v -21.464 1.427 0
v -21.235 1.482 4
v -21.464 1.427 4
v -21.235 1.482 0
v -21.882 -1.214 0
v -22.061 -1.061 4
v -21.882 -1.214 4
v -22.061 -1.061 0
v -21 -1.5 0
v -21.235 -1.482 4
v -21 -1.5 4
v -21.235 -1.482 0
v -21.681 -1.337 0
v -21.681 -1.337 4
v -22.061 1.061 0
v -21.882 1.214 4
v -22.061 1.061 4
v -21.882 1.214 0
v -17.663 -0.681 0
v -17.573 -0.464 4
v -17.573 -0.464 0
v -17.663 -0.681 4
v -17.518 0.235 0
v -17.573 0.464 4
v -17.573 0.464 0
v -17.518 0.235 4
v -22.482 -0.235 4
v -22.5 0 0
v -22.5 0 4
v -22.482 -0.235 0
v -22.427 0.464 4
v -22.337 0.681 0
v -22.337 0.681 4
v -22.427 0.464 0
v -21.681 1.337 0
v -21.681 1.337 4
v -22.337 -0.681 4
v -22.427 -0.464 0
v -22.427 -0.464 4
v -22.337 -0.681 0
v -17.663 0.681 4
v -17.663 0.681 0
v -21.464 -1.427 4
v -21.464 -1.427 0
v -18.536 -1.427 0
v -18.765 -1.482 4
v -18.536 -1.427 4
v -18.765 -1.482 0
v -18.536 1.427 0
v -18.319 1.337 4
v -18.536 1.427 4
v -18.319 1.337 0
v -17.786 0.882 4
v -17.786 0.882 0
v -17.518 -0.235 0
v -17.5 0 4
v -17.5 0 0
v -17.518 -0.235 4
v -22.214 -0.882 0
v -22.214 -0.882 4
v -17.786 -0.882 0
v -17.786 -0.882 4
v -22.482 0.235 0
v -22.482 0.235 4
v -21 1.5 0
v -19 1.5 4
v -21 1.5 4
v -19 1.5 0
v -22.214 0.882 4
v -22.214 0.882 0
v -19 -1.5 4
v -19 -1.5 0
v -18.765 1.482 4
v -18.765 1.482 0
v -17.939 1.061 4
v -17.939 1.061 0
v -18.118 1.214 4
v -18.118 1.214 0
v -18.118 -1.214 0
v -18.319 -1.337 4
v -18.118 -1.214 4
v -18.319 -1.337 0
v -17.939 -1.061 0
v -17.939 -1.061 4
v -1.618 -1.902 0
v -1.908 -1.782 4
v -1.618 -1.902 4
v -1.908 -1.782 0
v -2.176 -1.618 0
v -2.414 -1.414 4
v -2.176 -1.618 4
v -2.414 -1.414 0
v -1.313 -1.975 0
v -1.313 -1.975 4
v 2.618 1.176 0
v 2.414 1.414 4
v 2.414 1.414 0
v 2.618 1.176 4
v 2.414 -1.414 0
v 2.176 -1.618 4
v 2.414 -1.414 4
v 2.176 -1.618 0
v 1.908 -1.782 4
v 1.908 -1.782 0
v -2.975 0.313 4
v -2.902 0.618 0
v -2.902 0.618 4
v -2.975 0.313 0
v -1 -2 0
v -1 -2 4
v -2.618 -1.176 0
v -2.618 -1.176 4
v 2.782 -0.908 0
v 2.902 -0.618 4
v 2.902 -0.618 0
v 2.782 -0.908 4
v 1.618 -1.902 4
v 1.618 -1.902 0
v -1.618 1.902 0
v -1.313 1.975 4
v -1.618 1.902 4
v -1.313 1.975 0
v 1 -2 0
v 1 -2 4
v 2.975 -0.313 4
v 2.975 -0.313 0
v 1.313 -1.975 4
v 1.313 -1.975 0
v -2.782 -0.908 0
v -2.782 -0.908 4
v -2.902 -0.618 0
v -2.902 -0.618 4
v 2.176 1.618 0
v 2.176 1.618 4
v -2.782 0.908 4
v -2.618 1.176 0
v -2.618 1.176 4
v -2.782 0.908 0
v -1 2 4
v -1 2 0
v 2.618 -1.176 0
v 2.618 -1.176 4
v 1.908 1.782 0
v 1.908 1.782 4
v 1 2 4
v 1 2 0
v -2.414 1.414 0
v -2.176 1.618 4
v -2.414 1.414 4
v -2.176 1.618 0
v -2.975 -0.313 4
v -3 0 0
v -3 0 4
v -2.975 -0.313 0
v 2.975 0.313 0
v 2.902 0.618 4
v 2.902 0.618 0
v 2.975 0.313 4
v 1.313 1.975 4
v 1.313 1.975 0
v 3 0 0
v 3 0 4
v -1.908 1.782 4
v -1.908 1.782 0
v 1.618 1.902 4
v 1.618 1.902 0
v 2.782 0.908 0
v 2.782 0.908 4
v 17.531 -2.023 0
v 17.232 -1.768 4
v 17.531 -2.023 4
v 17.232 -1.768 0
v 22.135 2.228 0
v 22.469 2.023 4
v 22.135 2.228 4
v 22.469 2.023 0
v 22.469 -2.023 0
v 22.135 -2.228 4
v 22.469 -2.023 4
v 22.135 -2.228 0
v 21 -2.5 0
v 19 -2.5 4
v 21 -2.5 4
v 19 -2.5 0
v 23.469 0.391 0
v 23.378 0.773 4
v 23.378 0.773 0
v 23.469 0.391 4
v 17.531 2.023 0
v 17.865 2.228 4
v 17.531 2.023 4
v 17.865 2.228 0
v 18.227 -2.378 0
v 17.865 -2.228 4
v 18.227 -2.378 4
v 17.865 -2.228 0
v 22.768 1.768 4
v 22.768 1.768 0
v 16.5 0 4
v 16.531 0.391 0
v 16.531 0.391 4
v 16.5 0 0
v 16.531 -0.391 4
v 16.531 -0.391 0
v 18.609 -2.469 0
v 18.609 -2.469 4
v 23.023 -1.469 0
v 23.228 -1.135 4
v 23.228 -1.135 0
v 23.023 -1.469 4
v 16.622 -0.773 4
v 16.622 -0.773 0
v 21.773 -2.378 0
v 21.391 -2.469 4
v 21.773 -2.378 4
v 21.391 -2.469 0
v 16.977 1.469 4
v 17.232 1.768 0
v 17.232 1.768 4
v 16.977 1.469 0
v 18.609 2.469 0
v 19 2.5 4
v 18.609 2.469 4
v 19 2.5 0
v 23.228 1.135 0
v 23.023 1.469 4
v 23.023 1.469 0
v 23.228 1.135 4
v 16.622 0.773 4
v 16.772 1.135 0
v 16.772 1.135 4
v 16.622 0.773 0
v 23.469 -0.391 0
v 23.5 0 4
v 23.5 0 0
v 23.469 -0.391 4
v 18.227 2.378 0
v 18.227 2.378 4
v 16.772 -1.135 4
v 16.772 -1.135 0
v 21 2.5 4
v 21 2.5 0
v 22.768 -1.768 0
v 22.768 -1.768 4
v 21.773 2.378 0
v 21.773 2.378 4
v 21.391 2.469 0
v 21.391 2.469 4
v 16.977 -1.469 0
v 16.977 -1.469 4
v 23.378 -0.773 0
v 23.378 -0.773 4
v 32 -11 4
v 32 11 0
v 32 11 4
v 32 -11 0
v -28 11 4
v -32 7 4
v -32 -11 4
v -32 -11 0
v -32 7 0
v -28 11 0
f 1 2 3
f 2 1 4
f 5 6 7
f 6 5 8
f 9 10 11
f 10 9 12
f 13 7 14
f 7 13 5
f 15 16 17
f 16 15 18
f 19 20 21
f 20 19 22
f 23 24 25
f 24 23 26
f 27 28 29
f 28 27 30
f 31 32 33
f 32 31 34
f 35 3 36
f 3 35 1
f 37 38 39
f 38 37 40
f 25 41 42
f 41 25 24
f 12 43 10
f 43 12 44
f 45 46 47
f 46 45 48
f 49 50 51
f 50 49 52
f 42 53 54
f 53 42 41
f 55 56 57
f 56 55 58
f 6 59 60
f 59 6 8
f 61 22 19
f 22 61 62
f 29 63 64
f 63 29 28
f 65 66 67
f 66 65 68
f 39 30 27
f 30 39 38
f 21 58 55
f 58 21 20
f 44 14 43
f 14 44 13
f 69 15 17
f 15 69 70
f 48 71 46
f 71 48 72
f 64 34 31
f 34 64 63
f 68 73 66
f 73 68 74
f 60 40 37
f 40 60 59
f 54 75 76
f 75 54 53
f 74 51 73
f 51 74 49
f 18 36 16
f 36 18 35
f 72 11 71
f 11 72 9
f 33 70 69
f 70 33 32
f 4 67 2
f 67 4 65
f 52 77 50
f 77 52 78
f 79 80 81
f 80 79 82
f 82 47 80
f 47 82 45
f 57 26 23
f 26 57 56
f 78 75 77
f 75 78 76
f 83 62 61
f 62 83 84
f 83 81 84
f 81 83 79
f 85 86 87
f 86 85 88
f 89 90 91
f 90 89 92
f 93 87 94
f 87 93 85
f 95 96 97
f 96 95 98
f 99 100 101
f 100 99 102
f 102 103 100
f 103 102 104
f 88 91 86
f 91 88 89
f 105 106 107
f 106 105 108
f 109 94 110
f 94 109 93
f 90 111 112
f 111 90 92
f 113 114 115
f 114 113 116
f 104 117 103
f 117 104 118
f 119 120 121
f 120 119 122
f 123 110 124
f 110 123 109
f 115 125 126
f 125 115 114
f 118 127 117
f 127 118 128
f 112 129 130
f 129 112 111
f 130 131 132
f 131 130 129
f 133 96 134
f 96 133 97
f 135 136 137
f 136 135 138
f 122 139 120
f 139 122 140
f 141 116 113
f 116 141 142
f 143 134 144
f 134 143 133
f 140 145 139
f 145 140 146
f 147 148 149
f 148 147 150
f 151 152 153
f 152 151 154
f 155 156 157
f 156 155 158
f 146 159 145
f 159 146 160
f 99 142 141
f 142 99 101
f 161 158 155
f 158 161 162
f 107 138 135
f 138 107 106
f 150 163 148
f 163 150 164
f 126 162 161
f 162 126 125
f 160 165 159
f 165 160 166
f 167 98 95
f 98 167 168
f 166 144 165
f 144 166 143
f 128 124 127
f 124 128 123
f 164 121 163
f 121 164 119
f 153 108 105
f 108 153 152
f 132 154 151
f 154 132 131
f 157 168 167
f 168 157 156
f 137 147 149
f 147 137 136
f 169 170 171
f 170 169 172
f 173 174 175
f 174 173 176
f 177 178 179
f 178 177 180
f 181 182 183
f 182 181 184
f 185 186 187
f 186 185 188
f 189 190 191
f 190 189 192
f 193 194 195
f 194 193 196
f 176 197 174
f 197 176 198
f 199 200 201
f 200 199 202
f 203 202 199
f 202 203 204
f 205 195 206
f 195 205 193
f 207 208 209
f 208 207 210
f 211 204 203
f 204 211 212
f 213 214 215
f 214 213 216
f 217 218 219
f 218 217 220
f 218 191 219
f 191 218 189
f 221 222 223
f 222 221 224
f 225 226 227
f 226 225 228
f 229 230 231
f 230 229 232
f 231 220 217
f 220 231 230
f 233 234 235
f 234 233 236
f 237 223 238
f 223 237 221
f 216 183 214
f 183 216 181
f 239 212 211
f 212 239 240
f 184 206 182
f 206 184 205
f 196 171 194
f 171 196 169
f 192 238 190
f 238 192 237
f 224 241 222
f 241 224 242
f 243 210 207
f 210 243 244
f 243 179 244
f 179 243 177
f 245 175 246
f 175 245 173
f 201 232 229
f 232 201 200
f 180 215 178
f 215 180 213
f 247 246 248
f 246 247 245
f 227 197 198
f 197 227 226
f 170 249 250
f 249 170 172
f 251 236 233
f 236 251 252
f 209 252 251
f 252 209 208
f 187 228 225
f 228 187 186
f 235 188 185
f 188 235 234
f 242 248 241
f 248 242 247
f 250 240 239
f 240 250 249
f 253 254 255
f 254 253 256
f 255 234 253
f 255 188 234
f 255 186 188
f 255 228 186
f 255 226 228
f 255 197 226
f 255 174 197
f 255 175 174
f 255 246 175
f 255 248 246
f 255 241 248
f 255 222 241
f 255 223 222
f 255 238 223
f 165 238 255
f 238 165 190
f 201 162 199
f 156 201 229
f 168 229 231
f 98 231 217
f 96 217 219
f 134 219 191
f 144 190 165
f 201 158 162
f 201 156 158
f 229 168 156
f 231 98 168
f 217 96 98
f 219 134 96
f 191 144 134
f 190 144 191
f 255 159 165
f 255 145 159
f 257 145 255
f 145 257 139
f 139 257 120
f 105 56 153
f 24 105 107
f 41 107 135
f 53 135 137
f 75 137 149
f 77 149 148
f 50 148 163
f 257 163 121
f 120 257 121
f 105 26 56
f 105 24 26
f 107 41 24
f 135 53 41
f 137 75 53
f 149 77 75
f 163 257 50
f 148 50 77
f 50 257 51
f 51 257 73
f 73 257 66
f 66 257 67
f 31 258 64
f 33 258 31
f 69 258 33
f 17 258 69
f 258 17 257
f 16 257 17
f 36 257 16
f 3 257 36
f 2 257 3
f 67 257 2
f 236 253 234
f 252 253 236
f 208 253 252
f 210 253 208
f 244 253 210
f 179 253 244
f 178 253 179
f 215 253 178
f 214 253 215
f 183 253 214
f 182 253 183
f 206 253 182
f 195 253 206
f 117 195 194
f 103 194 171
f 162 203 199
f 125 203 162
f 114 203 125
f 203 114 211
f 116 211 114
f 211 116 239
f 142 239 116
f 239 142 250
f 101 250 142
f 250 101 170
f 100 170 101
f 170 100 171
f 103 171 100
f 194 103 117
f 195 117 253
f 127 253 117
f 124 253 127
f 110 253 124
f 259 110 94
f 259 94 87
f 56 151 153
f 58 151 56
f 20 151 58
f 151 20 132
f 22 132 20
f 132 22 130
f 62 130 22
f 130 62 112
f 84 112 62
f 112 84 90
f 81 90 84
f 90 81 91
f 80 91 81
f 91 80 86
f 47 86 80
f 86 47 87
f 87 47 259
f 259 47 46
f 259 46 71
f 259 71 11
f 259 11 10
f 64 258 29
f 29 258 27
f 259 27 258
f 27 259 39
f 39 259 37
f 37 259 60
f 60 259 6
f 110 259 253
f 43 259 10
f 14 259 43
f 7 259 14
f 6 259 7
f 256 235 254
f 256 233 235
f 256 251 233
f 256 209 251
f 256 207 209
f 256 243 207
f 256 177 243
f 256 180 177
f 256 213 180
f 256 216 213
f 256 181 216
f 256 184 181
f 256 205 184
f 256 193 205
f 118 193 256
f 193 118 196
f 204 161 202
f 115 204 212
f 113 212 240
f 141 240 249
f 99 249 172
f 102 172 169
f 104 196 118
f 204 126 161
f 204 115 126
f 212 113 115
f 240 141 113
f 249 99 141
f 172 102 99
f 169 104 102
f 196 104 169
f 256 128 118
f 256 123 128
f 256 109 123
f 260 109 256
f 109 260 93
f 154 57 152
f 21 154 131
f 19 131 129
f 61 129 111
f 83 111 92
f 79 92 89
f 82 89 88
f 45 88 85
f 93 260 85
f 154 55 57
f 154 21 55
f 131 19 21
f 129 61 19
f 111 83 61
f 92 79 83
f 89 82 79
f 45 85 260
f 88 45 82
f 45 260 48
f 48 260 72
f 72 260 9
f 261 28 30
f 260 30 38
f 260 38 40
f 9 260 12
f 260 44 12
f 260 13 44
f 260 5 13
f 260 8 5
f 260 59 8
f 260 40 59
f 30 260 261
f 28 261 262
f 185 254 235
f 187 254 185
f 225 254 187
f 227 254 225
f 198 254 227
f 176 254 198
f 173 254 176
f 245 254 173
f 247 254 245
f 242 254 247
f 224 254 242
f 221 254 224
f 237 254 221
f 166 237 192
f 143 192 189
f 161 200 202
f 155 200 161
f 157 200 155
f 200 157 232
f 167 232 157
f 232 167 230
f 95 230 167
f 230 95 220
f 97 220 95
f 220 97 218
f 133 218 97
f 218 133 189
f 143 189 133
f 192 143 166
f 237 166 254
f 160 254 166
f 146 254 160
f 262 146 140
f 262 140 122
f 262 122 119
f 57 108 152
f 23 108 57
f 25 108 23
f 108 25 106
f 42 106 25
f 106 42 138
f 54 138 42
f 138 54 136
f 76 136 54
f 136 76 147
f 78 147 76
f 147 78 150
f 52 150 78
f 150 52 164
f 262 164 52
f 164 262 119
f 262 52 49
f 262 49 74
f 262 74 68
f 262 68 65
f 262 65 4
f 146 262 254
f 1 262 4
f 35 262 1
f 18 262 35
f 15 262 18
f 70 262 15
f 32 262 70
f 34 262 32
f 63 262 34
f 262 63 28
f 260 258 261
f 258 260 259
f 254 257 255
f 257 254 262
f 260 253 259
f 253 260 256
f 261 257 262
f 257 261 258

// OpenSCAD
/*
  Braillix inline-power-pigtail slot coupon

  Uses the real 4 mm pod-lid thickness and three rounded cable-only slots.
  The barrel connector body stays outside; pass only the red/black leads.

  Slot widths/heights left->right:
    5.0 x 3.0
    6.0 x 4.0  (current CAD nominal)
    7.0 x 5.0
*/

$fn = 40;
plate_x = 64;
plate_y = 22;
plate_z = 4.0;
slot_widths = [5.0, 6.0, 7.0];
slot_heights = [3.0, 4.0, 5.0];

module rounded_slot(w, h) {
    dx = (w - h) / 2;
    hull()
        for (sx = [-1, 1])
            translate([sx * dx, 0, -1])
                cylinder(d=h, h=plate_z + 2);
}

difference() {
    translate([-plate_x/2, -plate_y/2, 0])
        cube([plate_x, plate_y, plate_z]);

    for (i = [0:2])
        translate([-20 + i*20, 0, 0])
            rounded_slot(slot_widths[i], slot_heights[i]);

    // Clipped upper-left corner identifies the 5 x 3 end without tiny text.
    translate([-plate_x/2 - 1, plate_y/2 - 5, -1])
        rotate([0, 0, 45]) cube([8, 8, plate_z + 2]);
}
